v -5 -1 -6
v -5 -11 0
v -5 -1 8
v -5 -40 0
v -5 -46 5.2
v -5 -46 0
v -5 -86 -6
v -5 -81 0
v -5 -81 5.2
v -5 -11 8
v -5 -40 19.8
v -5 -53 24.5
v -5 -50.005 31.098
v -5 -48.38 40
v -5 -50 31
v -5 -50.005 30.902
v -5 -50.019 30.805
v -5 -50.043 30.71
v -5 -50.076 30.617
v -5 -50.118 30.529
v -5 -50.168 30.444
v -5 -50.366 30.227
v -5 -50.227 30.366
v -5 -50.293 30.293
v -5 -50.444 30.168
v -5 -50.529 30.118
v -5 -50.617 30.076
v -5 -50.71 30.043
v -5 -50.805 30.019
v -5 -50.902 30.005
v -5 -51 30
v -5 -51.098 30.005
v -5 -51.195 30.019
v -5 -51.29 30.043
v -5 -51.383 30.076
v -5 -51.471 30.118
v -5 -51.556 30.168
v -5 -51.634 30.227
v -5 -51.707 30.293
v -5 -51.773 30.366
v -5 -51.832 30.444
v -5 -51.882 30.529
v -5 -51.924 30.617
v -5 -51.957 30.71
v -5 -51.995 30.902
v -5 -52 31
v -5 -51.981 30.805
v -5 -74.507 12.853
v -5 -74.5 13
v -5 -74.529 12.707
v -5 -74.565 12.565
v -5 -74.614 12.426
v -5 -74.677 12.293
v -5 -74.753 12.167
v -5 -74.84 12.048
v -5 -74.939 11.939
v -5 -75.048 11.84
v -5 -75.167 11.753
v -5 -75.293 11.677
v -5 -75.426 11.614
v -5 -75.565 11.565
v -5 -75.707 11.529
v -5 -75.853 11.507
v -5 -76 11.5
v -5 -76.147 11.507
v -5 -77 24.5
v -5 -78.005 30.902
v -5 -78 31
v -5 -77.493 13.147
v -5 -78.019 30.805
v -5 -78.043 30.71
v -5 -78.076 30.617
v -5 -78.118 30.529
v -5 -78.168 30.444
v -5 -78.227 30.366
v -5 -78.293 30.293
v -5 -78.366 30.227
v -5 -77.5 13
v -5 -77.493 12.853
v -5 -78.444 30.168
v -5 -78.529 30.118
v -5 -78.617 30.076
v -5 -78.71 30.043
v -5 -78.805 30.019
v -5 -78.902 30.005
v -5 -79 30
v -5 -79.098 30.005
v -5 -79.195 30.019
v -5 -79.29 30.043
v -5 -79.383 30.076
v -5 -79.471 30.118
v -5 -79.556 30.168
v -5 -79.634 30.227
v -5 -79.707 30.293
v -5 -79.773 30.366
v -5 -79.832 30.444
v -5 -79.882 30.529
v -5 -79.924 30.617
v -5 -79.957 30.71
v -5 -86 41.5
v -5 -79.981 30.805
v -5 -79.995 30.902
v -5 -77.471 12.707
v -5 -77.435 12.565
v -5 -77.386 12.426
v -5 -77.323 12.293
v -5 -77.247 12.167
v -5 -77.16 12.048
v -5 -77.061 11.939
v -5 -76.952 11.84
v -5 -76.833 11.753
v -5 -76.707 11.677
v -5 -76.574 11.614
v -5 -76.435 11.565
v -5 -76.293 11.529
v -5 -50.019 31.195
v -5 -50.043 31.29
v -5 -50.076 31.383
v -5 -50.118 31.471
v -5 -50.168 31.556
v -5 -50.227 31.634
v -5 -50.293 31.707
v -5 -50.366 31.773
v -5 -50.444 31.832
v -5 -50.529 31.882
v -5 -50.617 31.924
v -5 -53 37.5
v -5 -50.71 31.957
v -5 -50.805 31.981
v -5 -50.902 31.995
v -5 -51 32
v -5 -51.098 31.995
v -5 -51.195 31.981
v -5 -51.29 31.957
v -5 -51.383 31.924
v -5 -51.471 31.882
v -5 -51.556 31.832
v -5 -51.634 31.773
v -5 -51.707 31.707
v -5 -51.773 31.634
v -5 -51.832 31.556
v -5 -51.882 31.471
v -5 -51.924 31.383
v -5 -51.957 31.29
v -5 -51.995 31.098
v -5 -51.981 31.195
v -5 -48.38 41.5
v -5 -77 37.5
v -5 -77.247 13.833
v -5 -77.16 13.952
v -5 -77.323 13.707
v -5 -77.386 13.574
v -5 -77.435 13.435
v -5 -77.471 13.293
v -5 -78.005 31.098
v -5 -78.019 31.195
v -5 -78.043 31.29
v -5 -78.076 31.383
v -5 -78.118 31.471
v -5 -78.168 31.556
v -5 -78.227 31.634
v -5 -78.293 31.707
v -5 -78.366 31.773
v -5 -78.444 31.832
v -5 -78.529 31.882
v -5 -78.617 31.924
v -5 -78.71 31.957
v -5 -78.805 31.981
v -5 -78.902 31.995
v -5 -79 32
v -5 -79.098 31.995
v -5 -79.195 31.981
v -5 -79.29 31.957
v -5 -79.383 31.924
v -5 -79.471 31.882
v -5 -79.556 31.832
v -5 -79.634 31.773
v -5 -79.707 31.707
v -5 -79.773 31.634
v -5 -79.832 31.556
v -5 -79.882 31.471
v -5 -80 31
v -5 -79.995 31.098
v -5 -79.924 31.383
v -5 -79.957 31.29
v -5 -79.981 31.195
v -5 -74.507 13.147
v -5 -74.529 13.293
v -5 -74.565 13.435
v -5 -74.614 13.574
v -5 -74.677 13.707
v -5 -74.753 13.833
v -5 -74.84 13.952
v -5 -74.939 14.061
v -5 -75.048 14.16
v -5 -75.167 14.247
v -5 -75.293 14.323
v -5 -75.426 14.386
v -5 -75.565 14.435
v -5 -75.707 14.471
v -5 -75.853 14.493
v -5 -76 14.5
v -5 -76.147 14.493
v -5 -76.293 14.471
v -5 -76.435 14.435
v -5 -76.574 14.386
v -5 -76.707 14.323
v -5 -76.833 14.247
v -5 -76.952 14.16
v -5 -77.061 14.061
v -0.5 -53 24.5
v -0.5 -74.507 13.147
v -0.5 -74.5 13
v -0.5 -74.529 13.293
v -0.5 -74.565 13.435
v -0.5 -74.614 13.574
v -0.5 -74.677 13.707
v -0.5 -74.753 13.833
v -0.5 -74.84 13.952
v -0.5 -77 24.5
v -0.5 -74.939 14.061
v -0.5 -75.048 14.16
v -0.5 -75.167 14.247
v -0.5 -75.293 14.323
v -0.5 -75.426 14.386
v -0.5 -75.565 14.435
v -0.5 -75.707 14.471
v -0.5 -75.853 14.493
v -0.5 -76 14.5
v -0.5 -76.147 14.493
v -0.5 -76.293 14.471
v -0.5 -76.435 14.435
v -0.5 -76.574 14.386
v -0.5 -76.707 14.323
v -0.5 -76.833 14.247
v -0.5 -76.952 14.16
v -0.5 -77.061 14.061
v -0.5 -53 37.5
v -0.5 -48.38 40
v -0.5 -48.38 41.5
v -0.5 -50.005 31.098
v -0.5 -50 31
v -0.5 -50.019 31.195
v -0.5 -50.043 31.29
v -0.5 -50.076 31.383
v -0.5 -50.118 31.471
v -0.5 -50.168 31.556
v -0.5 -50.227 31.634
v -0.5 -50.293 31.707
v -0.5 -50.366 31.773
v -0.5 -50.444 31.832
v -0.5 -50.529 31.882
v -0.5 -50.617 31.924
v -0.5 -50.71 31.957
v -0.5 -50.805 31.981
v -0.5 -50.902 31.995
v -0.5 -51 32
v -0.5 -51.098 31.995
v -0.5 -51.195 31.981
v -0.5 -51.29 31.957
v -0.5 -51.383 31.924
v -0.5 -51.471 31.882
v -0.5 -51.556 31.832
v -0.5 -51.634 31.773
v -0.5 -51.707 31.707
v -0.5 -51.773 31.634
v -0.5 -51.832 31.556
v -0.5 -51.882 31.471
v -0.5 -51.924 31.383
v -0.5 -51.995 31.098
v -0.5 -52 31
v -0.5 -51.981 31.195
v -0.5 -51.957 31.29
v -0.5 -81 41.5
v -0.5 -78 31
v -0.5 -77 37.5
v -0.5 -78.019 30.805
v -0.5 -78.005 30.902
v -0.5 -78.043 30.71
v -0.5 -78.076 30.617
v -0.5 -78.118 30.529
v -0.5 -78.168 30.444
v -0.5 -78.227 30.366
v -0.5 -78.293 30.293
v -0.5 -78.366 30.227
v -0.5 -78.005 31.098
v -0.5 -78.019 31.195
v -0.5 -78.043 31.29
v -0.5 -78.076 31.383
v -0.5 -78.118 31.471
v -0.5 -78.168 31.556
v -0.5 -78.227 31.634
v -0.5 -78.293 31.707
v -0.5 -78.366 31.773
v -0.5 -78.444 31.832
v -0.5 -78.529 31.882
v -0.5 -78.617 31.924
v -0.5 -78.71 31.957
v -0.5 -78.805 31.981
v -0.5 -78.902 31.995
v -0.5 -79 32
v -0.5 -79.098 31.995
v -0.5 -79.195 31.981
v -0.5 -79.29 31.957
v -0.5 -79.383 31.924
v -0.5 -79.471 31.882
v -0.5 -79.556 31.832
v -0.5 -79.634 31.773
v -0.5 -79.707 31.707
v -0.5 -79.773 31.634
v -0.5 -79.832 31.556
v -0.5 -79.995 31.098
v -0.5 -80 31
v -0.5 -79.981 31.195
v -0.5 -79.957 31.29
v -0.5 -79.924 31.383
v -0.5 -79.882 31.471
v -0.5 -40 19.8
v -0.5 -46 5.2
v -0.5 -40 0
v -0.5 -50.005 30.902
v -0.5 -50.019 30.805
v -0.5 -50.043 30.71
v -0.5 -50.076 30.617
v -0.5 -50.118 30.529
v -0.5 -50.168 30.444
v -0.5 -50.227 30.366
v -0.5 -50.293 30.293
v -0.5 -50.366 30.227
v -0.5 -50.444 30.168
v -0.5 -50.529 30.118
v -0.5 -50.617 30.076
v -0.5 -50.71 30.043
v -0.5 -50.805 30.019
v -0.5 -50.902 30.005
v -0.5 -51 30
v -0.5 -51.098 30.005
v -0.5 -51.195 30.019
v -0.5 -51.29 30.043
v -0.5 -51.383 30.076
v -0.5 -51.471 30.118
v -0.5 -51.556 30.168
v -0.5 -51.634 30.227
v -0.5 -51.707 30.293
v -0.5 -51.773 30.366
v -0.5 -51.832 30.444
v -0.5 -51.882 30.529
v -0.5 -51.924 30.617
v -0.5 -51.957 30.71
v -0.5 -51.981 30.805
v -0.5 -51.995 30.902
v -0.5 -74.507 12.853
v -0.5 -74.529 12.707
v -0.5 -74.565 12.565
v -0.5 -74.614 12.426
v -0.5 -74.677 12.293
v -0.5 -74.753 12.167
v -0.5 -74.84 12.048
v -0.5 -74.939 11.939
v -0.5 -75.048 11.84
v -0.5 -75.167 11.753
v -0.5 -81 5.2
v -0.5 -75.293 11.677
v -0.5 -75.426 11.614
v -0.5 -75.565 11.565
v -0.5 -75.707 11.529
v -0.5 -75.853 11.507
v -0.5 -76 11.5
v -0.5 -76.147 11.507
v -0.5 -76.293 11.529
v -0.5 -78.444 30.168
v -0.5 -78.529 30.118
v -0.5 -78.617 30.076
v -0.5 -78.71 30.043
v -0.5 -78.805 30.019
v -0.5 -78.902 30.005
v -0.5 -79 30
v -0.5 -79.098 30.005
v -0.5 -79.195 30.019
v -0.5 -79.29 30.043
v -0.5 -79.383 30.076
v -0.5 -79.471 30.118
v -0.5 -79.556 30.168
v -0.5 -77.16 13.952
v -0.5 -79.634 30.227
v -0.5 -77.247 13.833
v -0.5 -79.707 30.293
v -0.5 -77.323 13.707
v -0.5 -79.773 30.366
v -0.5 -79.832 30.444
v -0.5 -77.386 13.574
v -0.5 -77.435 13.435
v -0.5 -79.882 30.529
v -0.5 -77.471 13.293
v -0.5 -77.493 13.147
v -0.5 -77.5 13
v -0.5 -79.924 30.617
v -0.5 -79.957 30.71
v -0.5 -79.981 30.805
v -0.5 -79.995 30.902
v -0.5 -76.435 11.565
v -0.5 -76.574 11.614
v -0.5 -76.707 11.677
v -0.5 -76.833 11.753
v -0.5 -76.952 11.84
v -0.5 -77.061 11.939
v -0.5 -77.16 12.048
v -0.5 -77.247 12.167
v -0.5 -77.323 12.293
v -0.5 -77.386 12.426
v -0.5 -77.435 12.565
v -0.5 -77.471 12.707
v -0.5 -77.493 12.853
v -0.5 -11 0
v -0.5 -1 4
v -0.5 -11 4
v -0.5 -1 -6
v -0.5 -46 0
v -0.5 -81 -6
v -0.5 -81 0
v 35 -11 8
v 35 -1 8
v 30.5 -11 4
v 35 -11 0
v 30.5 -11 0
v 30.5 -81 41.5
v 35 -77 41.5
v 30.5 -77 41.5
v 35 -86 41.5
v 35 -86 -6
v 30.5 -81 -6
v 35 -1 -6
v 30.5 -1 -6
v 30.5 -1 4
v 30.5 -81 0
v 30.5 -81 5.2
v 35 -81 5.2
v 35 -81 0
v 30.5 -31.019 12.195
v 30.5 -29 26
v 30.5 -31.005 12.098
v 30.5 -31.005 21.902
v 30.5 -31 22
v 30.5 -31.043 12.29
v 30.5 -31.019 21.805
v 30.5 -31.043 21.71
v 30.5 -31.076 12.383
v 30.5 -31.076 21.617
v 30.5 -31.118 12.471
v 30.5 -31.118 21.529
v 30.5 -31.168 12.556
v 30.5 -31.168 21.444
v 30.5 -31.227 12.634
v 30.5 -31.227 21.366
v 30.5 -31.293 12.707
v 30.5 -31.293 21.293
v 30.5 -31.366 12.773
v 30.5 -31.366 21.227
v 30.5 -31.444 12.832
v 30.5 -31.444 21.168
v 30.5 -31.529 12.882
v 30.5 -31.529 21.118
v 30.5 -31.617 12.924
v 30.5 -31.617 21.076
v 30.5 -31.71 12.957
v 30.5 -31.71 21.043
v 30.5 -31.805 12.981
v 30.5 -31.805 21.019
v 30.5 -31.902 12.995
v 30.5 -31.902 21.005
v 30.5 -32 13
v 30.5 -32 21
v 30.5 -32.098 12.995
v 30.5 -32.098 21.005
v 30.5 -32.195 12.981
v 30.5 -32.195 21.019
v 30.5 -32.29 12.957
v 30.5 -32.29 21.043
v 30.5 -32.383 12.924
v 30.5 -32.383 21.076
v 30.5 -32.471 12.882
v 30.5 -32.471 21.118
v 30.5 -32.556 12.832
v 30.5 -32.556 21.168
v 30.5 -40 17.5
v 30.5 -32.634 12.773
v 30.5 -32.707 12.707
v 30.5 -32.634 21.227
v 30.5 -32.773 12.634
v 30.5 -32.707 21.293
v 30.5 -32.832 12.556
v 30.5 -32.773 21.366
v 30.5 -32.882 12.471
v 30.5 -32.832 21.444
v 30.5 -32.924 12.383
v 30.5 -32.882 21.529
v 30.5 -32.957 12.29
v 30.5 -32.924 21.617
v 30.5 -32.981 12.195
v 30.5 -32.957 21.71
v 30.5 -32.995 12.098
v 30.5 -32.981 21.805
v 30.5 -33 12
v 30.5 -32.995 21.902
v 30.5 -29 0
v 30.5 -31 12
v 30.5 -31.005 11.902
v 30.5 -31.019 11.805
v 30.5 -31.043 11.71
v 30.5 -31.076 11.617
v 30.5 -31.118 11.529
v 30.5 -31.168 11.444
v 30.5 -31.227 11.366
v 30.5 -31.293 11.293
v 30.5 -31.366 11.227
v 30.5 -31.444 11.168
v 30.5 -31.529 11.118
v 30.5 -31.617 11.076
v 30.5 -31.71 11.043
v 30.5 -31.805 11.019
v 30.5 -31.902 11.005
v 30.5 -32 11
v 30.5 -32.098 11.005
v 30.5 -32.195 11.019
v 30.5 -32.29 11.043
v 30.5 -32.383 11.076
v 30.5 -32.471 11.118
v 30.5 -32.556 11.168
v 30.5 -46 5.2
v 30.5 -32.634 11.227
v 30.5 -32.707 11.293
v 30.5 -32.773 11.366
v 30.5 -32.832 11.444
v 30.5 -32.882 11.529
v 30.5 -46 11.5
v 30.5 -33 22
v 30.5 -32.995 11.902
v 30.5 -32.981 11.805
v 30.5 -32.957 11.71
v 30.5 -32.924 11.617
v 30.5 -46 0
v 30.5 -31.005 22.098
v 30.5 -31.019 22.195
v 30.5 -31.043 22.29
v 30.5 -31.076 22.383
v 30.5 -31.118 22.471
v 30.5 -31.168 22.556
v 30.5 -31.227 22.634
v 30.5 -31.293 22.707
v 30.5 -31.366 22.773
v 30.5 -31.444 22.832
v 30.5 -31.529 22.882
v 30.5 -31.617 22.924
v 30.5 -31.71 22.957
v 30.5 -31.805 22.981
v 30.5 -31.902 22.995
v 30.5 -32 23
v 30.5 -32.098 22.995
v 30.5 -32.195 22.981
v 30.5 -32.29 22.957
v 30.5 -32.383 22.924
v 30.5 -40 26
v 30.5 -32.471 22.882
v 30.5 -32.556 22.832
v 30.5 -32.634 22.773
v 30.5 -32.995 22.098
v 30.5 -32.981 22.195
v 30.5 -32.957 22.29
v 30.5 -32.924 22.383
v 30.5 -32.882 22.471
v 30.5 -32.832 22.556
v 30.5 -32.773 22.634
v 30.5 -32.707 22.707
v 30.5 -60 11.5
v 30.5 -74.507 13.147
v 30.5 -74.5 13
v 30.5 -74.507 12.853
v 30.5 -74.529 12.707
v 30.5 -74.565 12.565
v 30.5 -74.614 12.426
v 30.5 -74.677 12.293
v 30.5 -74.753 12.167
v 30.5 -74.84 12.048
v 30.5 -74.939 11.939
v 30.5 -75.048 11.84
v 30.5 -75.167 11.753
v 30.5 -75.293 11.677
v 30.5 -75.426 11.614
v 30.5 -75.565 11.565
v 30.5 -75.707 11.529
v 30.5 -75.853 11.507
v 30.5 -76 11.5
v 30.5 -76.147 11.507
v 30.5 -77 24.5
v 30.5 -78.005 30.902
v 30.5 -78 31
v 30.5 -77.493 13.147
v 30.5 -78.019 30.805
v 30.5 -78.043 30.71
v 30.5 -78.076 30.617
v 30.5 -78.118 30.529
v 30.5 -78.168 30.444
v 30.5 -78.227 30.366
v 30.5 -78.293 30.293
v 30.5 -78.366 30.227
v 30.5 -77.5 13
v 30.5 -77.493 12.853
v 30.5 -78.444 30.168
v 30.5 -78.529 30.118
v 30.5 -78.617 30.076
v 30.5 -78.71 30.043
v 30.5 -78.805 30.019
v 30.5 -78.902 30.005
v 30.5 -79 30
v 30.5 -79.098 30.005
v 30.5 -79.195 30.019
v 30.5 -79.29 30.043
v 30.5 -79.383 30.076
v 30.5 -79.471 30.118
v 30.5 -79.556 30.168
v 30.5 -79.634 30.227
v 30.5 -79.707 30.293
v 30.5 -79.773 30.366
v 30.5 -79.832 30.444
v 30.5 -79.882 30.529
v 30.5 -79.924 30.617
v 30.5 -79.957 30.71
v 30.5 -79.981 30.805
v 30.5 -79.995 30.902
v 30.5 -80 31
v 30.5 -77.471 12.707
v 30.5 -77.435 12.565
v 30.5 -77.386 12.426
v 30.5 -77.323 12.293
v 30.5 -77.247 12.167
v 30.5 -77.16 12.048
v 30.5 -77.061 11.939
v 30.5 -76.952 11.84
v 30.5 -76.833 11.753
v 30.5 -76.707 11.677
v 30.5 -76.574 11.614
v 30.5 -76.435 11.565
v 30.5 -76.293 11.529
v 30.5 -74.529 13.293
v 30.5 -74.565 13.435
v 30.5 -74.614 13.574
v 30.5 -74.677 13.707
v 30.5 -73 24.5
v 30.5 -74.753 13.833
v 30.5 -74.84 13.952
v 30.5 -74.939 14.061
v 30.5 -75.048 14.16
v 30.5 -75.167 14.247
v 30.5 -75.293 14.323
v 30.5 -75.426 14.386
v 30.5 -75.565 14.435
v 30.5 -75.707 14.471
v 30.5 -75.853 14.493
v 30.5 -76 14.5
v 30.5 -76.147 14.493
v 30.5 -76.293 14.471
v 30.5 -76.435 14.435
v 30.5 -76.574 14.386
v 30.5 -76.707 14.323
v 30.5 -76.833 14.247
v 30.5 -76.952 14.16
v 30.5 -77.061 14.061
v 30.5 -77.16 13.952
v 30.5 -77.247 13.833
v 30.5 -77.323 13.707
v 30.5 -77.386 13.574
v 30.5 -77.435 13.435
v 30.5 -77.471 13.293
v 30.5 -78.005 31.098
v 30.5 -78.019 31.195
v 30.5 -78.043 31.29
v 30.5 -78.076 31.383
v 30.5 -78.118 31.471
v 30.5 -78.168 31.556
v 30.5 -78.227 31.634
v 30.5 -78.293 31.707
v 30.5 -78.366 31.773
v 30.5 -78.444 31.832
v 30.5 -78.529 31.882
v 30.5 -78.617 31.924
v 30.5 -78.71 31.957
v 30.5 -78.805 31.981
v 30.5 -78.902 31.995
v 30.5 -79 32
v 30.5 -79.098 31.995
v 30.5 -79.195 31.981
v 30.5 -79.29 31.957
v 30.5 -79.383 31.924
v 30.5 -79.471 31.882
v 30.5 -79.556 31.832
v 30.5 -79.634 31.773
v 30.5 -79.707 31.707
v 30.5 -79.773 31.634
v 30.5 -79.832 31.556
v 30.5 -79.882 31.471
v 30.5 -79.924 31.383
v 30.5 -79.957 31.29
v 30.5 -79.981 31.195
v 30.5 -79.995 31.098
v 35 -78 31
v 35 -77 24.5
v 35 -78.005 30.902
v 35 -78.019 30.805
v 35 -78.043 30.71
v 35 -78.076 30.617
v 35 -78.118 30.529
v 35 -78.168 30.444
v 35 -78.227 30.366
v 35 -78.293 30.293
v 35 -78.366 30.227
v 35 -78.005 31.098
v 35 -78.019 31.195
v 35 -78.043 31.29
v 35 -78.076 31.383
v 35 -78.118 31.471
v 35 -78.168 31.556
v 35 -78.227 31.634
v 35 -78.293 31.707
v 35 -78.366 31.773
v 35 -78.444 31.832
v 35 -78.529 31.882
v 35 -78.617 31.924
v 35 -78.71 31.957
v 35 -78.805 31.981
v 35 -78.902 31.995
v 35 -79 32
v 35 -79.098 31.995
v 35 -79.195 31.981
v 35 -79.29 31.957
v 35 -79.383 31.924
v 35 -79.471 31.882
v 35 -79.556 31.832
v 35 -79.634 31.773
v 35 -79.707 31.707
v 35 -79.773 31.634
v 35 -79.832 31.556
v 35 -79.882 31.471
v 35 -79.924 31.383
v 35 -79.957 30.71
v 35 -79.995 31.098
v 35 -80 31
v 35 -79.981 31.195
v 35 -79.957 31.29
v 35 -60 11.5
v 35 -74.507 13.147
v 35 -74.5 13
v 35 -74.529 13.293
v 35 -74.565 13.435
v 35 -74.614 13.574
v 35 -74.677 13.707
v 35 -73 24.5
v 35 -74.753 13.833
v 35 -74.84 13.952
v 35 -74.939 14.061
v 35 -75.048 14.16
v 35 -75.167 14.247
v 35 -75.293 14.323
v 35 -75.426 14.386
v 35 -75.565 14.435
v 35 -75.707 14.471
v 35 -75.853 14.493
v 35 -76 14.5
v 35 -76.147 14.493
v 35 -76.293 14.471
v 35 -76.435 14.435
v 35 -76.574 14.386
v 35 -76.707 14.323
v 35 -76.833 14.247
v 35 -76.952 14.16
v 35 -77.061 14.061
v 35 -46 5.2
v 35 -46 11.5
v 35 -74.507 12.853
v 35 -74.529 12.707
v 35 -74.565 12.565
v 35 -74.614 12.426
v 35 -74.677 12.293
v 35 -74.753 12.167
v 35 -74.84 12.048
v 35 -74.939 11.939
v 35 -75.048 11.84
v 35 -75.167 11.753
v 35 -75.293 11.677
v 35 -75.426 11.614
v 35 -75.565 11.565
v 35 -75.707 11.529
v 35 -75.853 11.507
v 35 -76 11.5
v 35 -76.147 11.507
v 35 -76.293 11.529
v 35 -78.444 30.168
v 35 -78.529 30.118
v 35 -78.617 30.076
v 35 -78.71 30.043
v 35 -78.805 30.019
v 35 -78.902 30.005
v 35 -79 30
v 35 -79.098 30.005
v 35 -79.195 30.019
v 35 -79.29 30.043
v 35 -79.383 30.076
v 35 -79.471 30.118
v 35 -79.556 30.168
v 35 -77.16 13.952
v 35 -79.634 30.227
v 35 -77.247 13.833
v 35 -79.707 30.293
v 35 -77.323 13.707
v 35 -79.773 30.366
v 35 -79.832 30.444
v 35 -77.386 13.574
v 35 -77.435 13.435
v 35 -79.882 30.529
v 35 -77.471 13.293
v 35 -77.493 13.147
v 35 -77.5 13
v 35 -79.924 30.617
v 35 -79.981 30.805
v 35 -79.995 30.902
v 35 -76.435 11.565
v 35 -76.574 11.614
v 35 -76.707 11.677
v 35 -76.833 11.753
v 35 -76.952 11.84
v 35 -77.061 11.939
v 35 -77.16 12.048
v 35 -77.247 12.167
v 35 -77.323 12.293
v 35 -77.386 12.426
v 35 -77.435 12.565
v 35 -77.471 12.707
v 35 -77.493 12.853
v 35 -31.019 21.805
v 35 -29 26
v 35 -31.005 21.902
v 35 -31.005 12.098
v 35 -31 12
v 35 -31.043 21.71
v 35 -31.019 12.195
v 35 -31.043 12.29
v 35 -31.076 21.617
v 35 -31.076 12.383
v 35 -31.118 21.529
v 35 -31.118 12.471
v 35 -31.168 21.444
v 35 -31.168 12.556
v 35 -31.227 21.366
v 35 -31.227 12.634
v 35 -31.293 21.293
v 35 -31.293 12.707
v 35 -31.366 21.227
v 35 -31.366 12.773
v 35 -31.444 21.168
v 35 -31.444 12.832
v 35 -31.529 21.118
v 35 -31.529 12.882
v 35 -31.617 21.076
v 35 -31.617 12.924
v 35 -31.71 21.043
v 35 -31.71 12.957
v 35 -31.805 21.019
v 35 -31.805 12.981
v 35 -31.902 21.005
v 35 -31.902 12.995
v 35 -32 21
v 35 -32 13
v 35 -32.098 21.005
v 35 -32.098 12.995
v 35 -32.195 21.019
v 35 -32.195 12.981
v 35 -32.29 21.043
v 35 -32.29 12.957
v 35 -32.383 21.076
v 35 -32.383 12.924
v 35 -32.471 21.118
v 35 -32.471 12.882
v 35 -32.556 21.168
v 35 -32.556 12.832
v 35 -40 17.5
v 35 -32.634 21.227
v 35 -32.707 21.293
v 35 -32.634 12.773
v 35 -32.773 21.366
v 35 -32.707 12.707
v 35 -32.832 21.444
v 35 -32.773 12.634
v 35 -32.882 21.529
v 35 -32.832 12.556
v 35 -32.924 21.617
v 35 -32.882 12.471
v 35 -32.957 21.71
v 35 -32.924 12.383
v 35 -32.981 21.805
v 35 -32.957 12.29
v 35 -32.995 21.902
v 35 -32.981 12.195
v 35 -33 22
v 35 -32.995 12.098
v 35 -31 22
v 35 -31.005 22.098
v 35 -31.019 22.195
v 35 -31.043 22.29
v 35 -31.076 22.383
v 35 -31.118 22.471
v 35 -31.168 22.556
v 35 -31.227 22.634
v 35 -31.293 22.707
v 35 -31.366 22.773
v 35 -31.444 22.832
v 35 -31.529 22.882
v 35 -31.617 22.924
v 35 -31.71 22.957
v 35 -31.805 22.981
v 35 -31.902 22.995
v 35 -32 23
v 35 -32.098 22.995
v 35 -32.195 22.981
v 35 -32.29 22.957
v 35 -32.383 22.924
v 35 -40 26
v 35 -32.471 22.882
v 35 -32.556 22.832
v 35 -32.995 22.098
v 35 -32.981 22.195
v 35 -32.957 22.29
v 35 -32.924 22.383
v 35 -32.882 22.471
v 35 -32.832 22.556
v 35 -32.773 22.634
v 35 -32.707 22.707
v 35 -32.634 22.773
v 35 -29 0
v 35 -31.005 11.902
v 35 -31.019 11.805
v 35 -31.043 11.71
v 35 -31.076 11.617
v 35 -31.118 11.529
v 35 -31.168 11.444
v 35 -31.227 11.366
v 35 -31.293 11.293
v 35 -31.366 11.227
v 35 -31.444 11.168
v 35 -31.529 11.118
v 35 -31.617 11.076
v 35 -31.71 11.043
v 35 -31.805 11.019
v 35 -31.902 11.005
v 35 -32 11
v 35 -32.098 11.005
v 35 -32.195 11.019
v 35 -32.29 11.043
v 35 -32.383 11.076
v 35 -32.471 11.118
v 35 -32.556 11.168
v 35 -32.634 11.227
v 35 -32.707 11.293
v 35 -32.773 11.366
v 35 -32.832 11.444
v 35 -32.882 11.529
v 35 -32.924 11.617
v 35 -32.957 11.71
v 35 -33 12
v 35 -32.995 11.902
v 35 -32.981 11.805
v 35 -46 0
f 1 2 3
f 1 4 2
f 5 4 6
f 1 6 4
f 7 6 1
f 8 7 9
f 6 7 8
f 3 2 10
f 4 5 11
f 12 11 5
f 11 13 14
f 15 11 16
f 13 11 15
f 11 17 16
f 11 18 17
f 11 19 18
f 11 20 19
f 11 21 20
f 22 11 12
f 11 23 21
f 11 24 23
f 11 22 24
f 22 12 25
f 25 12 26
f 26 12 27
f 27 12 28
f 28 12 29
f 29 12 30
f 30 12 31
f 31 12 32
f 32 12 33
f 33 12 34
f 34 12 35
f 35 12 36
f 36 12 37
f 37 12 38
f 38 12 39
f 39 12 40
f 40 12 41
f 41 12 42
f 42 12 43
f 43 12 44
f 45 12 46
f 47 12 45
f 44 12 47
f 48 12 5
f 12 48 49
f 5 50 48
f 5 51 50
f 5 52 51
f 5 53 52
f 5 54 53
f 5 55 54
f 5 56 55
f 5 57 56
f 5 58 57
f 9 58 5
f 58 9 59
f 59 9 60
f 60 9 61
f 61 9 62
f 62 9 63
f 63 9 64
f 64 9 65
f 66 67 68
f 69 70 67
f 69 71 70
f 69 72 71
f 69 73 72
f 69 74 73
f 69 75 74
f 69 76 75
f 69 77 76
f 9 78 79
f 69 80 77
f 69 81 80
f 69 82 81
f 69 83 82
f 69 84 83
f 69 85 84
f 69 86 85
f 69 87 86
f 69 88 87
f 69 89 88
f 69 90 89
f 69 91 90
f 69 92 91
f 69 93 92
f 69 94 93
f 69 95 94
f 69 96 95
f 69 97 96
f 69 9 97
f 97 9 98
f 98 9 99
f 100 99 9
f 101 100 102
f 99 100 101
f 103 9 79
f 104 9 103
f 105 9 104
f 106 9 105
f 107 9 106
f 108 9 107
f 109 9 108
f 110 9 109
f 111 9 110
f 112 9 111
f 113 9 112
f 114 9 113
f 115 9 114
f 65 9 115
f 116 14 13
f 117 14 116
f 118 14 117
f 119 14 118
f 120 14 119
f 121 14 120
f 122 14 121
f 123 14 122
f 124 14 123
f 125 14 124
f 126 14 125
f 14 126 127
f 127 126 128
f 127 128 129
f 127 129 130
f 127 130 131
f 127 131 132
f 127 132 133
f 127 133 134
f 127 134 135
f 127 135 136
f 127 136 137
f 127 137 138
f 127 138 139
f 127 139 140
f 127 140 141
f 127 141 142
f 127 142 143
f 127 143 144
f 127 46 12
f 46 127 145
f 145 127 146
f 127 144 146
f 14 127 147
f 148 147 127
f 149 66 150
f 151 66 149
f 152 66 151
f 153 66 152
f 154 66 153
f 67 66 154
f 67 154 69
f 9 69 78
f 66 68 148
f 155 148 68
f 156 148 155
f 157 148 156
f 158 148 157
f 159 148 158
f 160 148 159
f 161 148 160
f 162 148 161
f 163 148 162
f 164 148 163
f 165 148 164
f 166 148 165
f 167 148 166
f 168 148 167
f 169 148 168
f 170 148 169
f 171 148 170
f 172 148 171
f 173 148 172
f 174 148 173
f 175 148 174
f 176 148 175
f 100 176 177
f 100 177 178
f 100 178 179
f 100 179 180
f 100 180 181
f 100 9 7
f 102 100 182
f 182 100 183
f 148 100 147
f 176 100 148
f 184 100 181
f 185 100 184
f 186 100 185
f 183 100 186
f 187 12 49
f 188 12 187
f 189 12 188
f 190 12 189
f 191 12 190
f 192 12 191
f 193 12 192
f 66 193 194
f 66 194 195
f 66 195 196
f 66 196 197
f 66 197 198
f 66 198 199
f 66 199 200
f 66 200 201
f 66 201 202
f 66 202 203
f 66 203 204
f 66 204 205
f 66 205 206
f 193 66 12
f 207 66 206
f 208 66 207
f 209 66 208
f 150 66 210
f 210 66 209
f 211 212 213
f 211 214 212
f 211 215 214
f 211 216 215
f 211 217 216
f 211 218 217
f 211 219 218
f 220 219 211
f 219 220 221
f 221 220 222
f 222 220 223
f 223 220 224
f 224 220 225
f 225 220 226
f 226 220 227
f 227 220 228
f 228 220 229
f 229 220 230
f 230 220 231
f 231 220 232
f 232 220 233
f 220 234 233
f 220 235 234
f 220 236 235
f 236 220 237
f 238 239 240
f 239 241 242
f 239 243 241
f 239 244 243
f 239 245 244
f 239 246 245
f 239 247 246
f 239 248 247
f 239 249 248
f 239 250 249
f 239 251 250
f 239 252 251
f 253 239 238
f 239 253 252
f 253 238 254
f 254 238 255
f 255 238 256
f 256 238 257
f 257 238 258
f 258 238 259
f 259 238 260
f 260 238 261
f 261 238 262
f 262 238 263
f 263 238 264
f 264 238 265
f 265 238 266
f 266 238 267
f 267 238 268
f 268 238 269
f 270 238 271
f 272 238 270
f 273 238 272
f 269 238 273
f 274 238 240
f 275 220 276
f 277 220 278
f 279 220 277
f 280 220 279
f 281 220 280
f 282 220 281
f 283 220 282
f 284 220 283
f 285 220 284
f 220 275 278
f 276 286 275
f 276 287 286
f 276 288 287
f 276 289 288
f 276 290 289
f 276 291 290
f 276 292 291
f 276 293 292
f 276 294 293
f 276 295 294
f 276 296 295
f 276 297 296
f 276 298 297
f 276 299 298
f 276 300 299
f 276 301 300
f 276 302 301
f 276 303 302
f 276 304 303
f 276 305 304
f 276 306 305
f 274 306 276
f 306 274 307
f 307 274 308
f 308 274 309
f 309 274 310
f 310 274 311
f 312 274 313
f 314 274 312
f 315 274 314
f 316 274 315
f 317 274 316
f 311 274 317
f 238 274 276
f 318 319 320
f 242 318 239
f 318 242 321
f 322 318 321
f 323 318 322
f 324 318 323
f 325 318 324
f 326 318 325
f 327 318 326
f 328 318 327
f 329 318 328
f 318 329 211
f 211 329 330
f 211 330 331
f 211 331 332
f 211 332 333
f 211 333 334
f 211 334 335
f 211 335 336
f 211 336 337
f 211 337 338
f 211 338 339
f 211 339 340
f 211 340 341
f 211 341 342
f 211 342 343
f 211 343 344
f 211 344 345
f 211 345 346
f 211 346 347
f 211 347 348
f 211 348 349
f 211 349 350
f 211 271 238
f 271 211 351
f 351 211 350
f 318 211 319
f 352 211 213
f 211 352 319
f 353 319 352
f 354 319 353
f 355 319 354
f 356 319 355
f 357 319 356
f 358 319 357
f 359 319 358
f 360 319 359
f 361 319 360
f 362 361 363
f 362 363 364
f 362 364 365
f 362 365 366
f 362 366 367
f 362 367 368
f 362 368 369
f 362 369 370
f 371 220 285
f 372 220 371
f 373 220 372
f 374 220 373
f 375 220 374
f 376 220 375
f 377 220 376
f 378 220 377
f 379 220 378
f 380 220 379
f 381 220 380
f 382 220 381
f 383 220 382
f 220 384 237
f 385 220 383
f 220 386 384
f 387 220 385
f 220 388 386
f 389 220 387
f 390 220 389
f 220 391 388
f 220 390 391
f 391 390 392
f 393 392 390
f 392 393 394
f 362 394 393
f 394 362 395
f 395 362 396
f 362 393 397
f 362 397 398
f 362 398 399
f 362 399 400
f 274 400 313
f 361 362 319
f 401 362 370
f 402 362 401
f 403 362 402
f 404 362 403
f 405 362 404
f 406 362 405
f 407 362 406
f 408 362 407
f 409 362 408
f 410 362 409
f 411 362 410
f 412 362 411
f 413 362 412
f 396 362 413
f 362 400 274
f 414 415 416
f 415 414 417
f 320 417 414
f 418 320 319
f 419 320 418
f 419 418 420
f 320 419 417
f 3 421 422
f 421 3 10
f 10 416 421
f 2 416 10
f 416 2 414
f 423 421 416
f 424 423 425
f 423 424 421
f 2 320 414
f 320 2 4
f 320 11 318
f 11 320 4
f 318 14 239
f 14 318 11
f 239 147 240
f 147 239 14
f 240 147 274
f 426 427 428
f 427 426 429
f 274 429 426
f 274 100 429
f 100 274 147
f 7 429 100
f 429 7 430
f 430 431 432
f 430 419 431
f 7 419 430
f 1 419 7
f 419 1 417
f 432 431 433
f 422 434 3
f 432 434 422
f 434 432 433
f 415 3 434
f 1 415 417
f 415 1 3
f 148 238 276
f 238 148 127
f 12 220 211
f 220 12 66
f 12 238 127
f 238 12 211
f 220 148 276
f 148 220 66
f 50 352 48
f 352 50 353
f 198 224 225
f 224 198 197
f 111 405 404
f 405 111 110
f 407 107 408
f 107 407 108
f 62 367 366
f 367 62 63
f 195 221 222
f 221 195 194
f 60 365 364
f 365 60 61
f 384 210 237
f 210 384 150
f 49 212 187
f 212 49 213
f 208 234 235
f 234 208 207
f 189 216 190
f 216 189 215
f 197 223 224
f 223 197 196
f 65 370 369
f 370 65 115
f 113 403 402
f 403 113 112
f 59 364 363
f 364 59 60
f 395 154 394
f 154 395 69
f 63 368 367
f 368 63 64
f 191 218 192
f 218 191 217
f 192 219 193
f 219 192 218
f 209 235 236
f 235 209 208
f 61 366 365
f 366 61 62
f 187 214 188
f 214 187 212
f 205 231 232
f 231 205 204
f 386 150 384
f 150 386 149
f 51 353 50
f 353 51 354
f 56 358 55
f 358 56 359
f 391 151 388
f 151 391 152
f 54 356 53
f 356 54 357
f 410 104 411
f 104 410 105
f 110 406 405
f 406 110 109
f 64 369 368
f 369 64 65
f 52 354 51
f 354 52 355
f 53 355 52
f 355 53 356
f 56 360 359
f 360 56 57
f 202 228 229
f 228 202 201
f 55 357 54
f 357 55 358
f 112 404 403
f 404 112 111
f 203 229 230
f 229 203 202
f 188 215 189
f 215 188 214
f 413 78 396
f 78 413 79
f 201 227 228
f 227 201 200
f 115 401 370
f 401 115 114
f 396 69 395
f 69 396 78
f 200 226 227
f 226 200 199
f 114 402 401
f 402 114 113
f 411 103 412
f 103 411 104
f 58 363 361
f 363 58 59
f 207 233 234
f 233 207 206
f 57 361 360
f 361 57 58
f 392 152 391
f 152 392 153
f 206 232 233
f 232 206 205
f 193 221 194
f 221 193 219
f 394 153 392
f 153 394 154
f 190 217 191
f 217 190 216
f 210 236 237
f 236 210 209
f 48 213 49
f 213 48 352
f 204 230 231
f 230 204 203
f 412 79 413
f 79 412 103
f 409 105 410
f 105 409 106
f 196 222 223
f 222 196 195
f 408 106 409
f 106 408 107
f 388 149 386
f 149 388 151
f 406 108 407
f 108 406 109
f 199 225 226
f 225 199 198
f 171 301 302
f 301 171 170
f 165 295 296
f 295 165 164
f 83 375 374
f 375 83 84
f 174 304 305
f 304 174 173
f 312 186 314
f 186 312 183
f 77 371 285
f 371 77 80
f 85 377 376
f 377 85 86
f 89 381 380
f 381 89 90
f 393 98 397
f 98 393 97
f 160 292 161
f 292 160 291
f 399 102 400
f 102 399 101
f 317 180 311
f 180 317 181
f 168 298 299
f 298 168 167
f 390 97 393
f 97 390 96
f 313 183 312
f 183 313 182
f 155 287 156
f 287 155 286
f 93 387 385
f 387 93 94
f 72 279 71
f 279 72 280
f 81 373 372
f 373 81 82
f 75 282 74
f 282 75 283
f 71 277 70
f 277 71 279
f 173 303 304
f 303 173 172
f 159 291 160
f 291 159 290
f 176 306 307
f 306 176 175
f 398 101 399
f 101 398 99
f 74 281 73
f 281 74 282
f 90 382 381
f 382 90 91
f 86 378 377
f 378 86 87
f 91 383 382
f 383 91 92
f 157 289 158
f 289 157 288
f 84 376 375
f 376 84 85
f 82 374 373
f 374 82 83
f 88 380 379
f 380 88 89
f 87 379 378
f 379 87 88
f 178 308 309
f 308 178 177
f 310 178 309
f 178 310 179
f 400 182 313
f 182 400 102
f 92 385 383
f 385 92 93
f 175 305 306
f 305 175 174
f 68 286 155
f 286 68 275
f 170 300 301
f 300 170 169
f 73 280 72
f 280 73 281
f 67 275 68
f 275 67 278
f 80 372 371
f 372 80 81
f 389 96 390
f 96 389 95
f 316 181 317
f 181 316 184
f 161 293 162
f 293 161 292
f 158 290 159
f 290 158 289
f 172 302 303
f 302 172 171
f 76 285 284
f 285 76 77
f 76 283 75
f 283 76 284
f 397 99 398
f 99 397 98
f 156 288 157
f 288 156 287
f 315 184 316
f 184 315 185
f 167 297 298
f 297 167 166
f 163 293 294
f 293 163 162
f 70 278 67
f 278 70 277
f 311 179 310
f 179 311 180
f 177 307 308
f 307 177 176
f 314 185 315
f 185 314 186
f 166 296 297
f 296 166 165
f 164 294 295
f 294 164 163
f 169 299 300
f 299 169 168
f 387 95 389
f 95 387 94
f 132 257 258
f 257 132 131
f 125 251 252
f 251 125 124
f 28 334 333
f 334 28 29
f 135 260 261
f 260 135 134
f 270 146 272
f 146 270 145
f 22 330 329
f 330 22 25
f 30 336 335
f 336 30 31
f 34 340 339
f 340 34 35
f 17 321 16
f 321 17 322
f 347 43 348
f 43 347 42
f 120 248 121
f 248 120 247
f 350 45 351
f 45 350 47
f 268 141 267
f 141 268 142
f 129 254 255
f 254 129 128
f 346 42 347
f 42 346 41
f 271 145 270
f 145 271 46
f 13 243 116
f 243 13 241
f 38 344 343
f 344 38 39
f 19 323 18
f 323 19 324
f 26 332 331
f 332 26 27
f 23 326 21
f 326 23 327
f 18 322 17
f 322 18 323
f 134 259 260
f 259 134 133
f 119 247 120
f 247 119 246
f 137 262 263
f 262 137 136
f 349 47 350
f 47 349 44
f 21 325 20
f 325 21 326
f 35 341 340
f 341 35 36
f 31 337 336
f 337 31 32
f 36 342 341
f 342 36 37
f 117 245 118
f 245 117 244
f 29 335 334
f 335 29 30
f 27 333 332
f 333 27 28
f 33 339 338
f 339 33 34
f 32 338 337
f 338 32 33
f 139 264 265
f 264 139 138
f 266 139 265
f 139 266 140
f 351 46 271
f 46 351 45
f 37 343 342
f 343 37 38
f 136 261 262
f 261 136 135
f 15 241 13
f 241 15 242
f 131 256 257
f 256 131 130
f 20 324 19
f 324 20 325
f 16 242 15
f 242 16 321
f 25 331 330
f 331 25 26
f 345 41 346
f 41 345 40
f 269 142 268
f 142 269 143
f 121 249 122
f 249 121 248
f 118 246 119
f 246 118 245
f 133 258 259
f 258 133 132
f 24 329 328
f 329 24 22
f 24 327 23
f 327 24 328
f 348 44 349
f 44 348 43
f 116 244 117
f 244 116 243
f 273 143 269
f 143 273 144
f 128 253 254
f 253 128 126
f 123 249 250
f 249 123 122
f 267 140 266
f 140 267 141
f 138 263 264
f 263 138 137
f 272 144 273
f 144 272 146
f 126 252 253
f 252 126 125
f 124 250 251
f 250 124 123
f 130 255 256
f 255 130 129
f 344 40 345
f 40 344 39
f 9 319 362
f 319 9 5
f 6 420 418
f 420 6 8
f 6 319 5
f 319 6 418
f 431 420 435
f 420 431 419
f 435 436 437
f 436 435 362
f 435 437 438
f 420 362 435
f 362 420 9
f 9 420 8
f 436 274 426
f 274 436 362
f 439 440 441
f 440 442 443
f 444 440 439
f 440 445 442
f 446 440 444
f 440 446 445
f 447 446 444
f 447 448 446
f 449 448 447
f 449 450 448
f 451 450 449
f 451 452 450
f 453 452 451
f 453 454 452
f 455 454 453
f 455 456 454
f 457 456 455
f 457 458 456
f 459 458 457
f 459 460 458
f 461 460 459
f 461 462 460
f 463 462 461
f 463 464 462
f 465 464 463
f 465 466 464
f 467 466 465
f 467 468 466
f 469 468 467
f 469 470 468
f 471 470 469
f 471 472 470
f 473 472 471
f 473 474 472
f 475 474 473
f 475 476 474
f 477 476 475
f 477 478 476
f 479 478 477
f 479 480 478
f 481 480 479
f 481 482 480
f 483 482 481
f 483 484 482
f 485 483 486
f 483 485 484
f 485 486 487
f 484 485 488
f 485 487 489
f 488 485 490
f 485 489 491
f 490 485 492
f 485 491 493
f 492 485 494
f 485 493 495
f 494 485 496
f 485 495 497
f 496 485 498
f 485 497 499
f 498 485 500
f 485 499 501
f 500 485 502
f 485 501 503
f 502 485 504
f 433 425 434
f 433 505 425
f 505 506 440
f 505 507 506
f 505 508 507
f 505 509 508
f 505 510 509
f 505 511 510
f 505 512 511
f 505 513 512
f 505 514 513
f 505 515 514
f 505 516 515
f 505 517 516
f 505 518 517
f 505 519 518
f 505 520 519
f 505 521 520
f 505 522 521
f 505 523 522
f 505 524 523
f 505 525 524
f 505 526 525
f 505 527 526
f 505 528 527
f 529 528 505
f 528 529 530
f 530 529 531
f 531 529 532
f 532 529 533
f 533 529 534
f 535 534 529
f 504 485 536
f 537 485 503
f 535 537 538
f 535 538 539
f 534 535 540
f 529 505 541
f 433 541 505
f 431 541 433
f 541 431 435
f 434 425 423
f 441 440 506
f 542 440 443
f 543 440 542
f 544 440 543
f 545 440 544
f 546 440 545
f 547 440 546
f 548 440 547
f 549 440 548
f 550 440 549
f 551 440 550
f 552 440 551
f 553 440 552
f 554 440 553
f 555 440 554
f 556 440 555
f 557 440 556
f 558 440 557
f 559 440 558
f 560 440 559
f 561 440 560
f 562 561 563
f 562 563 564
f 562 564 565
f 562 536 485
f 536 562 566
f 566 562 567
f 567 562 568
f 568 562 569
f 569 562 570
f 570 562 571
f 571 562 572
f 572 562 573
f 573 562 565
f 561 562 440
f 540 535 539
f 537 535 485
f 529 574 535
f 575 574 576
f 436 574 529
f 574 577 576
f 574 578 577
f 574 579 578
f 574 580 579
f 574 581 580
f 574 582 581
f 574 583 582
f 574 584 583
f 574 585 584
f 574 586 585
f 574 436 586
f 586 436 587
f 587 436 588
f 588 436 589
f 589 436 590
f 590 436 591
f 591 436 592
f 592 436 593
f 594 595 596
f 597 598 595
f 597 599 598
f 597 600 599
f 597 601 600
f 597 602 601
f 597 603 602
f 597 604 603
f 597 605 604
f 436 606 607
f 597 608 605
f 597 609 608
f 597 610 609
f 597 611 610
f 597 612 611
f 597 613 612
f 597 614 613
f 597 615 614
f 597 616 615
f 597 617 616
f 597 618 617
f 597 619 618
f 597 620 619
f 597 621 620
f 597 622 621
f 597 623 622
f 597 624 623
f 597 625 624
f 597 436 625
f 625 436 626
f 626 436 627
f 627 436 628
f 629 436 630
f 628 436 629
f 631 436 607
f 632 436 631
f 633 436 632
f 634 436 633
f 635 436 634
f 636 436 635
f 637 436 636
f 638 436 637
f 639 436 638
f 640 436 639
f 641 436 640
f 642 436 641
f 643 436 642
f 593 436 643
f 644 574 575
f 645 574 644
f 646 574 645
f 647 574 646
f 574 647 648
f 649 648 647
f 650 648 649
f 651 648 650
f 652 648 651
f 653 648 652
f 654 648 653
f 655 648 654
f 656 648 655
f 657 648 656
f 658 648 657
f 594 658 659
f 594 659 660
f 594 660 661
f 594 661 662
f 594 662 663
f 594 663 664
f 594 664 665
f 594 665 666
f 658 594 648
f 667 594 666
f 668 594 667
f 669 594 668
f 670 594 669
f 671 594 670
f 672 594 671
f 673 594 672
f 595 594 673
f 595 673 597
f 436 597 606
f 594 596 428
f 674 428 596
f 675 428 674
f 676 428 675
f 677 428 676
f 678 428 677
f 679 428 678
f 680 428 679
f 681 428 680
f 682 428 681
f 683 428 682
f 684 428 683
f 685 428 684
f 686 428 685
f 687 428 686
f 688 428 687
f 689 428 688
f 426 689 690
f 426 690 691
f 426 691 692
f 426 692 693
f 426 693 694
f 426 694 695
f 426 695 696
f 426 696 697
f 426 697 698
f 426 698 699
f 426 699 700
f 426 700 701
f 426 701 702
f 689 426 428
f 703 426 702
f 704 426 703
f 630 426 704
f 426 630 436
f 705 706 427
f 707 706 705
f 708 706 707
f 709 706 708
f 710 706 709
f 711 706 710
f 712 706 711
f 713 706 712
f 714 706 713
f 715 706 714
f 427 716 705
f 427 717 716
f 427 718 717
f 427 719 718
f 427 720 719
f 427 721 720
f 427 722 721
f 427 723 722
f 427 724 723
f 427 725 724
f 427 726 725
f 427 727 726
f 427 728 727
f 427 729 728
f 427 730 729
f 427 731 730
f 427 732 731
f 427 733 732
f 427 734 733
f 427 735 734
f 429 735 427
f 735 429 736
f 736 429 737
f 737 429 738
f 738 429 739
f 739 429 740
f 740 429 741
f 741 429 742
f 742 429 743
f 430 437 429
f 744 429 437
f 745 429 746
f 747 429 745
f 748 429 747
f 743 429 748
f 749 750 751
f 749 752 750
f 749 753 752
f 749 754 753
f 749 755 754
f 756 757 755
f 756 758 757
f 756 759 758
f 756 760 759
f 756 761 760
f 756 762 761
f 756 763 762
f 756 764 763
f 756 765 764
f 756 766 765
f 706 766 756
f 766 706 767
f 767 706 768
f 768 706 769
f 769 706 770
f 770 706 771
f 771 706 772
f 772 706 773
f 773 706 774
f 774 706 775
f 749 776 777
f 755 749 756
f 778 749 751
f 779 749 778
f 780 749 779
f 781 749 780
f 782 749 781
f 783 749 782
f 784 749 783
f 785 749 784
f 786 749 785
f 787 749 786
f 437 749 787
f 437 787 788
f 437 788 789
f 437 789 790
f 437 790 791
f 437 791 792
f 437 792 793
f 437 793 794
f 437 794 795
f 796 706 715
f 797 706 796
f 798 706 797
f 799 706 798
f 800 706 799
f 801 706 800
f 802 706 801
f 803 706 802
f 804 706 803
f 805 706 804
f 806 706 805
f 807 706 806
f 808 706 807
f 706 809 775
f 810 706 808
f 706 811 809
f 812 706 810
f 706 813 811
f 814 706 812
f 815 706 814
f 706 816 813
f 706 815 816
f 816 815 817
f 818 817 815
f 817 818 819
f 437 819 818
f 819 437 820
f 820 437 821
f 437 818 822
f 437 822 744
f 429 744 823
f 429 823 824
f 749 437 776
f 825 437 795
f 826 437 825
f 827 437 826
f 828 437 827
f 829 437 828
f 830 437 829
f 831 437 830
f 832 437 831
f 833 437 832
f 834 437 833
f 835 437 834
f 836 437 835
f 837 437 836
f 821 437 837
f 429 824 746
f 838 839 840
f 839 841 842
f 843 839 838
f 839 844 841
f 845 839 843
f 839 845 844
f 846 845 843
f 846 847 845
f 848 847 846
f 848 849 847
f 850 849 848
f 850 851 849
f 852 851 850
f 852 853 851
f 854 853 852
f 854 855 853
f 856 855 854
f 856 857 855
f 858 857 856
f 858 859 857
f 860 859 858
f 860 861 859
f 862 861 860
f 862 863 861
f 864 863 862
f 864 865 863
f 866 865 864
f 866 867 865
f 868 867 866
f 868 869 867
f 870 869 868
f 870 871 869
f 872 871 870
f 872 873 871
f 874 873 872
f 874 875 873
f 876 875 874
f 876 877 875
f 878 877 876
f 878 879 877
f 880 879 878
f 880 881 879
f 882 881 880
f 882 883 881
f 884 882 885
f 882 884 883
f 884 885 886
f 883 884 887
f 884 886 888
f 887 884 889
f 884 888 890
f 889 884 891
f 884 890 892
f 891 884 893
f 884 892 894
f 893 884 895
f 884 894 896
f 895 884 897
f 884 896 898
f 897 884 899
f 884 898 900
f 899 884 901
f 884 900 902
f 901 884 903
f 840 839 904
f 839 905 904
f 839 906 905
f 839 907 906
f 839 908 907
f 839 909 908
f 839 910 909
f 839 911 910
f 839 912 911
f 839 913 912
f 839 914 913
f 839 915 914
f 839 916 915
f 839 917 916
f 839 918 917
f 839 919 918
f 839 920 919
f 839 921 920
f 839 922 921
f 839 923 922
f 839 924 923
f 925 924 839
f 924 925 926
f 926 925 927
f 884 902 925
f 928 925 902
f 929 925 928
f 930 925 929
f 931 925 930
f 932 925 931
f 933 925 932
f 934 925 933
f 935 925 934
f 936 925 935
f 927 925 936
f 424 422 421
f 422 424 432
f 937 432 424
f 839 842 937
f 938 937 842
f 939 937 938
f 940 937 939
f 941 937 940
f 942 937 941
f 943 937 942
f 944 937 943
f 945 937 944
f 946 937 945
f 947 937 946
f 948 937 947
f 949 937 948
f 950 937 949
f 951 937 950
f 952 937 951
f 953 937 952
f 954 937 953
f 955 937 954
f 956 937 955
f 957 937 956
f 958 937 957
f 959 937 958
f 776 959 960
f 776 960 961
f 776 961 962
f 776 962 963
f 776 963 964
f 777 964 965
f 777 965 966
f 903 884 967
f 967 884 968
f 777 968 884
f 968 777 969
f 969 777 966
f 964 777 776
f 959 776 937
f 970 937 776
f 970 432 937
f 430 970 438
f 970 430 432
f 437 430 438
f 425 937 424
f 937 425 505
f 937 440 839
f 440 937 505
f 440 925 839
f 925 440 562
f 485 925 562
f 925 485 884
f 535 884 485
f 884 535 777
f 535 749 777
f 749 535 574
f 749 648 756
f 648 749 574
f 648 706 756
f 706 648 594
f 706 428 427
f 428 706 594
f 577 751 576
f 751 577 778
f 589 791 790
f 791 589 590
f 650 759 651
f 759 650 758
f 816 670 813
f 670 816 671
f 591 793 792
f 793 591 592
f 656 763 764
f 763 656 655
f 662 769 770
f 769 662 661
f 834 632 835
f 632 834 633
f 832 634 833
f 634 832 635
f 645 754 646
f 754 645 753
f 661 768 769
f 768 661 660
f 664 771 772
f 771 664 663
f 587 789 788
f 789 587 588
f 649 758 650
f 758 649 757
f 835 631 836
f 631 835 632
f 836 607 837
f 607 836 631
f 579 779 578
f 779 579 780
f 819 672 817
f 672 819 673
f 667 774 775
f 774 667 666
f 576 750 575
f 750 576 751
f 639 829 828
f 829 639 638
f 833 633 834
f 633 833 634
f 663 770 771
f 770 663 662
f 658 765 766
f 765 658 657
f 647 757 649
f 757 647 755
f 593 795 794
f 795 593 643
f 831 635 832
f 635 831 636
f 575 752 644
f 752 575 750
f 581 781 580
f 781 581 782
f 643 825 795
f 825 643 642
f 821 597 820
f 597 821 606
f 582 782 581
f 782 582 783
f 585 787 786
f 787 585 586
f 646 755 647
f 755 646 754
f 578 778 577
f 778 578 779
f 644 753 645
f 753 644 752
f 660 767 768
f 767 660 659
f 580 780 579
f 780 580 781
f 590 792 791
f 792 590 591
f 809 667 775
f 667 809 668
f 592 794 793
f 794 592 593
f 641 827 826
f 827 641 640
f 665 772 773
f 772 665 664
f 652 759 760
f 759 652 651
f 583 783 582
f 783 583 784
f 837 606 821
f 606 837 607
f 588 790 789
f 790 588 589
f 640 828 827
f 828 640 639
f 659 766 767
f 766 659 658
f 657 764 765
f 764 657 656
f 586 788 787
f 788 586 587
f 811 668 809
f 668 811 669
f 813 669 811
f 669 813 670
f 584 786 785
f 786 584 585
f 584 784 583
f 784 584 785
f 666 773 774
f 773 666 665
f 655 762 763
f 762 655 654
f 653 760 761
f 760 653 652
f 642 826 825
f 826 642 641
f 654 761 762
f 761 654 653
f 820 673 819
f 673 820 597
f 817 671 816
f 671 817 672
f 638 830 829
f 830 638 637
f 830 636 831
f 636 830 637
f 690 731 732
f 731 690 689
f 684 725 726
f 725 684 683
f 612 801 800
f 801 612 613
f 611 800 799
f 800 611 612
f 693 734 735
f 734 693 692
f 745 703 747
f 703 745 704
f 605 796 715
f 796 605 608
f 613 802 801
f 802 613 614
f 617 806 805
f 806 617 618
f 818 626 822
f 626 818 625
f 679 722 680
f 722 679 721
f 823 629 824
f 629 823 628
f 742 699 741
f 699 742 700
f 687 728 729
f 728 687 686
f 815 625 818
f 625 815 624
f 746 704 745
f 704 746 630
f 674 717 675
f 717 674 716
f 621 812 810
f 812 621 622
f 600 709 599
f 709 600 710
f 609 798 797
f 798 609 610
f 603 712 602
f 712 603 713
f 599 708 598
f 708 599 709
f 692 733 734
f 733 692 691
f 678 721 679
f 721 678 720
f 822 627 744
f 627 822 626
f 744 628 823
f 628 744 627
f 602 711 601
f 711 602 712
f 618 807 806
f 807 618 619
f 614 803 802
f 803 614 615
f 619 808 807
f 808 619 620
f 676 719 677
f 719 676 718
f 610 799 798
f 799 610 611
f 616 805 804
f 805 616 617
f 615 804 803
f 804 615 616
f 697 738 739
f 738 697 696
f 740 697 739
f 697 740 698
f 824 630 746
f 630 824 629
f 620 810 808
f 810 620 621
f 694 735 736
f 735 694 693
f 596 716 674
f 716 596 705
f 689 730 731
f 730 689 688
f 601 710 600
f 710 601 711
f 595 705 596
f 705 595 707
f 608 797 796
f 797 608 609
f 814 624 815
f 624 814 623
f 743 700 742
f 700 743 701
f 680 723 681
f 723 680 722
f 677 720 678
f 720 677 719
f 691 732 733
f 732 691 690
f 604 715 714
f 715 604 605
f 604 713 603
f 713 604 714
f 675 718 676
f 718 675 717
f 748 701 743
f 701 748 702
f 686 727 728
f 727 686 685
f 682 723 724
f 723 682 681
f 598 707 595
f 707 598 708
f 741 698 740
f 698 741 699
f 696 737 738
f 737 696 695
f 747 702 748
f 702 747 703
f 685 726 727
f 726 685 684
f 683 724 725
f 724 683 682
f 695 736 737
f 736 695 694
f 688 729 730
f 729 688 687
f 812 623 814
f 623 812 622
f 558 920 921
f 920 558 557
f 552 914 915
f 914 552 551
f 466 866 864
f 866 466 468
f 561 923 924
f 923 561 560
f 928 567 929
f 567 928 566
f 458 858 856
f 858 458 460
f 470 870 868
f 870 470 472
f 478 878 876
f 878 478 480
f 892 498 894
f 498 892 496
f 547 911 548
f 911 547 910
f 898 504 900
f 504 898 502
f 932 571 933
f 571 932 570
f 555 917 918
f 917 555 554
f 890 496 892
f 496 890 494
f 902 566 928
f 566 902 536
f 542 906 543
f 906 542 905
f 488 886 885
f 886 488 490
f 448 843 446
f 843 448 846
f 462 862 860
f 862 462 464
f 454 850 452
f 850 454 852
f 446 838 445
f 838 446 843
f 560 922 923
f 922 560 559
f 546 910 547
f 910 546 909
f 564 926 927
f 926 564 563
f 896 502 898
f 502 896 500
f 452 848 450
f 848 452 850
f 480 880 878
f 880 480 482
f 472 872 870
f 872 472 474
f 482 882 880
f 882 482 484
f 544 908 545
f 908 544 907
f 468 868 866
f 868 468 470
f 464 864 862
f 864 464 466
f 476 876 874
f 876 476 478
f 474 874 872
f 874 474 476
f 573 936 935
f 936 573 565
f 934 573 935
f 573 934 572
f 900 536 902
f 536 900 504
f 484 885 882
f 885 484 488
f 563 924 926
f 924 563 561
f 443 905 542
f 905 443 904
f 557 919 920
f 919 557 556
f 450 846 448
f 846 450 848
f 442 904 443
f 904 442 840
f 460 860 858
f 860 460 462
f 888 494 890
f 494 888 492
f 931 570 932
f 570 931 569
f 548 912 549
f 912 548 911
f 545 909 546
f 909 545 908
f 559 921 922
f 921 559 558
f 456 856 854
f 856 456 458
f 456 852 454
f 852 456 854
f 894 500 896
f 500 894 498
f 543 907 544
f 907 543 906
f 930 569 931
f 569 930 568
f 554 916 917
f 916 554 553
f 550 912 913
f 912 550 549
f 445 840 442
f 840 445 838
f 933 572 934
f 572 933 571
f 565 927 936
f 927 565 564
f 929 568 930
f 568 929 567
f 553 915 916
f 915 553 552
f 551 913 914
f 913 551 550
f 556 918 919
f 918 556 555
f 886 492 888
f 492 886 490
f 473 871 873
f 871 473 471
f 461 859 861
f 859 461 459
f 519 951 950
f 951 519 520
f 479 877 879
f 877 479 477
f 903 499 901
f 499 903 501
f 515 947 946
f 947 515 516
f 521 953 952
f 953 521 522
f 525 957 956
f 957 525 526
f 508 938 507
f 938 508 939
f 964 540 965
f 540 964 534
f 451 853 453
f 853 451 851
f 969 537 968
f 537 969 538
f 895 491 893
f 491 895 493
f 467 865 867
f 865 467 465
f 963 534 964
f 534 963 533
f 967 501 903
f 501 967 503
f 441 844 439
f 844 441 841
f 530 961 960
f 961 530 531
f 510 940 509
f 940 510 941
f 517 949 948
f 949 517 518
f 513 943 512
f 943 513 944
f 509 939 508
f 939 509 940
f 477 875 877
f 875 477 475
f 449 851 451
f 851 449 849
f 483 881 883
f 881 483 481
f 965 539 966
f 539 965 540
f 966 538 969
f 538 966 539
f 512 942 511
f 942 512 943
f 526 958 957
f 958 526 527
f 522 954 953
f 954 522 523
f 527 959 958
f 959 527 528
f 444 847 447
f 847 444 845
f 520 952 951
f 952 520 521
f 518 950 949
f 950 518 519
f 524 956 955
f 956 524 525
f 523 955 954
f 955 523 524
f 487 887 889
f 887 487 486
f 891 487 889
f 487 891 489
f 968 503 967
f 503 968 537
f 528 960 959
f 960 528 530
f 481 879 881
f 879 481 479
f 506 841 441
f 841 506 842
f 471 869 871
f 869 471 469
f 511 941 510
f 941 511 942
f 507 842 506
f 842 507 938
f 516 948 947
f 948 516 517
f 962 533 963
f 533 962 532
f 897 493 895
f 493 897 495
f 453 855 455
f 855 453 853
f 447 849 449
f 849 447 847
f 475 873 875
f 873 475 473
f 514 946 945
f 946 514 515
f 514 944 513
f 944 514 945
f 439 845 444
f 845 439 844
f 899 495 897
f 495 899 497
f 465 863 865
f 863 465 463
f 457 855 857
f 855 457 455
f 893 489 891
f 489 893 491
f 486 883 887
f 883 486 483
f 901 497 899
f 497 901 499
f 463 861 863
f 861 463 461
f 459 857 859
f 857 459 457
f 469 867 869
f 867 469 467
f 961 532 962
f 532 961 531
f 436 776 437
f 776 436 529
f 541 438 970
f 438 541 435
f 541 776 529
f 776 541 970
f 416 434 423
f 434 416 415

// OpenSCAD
include <parameters.scad>

// Gaiola convertida de references/cage.stl.
//
// A peça é totalmente prismática no eixo X: tudo são perfis no plano YZ
// extrudados ao longo da largura. Cada perfil abaixo é o contorno medido
// na malha original, então os pontos podem ser editados diretamente.
//
// Orientação idêntica à do STL (deitada, como é impressa):
//   X = largura (40 mm)   Y = altura da estrutura (85 mm)   Z = profundidade

// Extruda um perfil (Y, Z) ao longo de X, de x_start por thickness.
module cage_prism(points, x_start, thickness) {
    translate([x_start, 0, 0])
        rotate([90, 0, 90])
            linear_extrude(height = thickness)
                polygon(points);
}

// Furo redondo atravessando a lateral, posicionado em (Y, Z).
module cage_hole(center, diameter, x_start, thickness) {
    translate([x_start - epsilon, center[0], center[1]])
        rotate([0, 90, 0])
            cylinder(d = diameter, h = thickness + 2 * epsilon);
}

// Contorno externo da lateral esquerda: a que leva a janela grande.
cage_left_profile = [
    [-86, -6], [-1, -6], [-1, 8], [-11, 8], [-11, 0],
    [-40, 0], [-40, 19.8], [-48.38, 40], [-48.38, 41.5], [-86, 41.5]
];

// Contorno externo da lateral direita, com o recorte que apoia o servo.
cage_right_profile = [
    [-86, -6], [-86, 41.5], [-77, 41.5], [-77, 24.5], [-73, 24.5],
    [-60, 11.5], [-46, 11.5], [-40, 17.5], [-40, 26], [-29, 26],
    [-29, 0], [-11, 0], [-11, 8], [-1, 8], [-1, -6]
];

// Fenda comprida logo acima da base, presente nas duas laterais.
module cage_side_slot_cut(x_start) {
    translate([
        x_start - epsilon,
        cage_side_slot[0][0],
        cage_side_slot[0][1]
    ])
        cube([
            cage_wall + 2 * epsilon,
            cage_side_slot[1][0] - cage_side_slot[0][0],
            cage_side_slot[1][1] - cage_side_slot[0][1]
        ]);
}

module cage_left_wall() {
    difference() {
        cage_prism(cage_left_profile, cage_left_x, cage_wall);

        // Janela lateral.
        translate([
            cage_left_x - epsilon,
            cage_window[0][0],
            cage_window[0][1]
        ])
            cube([
                cage_wall + 2 * epsilon,
                cage_window[1][0] - cage_window[0][0],
                cage_window[1][1] - cage_window[0][1]
            ]);

        cage_hole([-76, 13], cage_screw_diameter, cage_left_x, cage_wall);
        cage_hole([-79, 31], cage_pin_diameter, cage_left_x, cage_wall);
        cage_hole([-51, 31], cage_pin_diameter, cage_left_x, cage_wall);
        cage_side_slot_cut(cage_left_x);
    }
}

module cage_right_wall() {
    difference() {
        cage_prism(cage_right_profile, cage_right_x, cage_wall);

        cage_hole([-76, 13], cage_screw_diameter, cage_right_x, cage_wall);
        cage_hole([-79, 31], cage_pin_diameter, cage_right_x, cage_wall);
        // Furos do microswitch.
        cage_hole([-32, 22], cage_pin_diameter, cage_right_x, cage_wall);
        cage_hole([-32, 12], cage_pin_diameter, cage_right_x, cage_wall);
        cage_side_slot_cut(cage_right_x);
    }
}

// Base e travessa frontal cruzam a largura inteira e unem as duas laterais.
module cage_cross_members() {
    full_width = cage_right_x + cage_wall - cage_left_x;

    cage_prism([
        [cage_base_span[0], cage_base_depth[0]],
        [cage_base_span[1], cage_base_depth[0]],
        [cage_base_span[1], cage_base_depth[1]],
        [cage_base_span[0], cage_base_depth[1]]
    ], cage_left_x, full_width);

    cage_prism([
        [cage_bar_span[0], cage_bar_depth[0]],
        [cage_bar_span[1], cage_bar_depth[0]],
        [cage_bar_span[1], cage_bar_depth[1]],
        [cage_bar_span[0], cage_bar_depth[1]]
    ], cage_left_x, full_width);
}

module cage() {
    cage_left_wall();
    cage_right_wall();
    cage_cross_members();
}

scale(cage_scale) cage();
